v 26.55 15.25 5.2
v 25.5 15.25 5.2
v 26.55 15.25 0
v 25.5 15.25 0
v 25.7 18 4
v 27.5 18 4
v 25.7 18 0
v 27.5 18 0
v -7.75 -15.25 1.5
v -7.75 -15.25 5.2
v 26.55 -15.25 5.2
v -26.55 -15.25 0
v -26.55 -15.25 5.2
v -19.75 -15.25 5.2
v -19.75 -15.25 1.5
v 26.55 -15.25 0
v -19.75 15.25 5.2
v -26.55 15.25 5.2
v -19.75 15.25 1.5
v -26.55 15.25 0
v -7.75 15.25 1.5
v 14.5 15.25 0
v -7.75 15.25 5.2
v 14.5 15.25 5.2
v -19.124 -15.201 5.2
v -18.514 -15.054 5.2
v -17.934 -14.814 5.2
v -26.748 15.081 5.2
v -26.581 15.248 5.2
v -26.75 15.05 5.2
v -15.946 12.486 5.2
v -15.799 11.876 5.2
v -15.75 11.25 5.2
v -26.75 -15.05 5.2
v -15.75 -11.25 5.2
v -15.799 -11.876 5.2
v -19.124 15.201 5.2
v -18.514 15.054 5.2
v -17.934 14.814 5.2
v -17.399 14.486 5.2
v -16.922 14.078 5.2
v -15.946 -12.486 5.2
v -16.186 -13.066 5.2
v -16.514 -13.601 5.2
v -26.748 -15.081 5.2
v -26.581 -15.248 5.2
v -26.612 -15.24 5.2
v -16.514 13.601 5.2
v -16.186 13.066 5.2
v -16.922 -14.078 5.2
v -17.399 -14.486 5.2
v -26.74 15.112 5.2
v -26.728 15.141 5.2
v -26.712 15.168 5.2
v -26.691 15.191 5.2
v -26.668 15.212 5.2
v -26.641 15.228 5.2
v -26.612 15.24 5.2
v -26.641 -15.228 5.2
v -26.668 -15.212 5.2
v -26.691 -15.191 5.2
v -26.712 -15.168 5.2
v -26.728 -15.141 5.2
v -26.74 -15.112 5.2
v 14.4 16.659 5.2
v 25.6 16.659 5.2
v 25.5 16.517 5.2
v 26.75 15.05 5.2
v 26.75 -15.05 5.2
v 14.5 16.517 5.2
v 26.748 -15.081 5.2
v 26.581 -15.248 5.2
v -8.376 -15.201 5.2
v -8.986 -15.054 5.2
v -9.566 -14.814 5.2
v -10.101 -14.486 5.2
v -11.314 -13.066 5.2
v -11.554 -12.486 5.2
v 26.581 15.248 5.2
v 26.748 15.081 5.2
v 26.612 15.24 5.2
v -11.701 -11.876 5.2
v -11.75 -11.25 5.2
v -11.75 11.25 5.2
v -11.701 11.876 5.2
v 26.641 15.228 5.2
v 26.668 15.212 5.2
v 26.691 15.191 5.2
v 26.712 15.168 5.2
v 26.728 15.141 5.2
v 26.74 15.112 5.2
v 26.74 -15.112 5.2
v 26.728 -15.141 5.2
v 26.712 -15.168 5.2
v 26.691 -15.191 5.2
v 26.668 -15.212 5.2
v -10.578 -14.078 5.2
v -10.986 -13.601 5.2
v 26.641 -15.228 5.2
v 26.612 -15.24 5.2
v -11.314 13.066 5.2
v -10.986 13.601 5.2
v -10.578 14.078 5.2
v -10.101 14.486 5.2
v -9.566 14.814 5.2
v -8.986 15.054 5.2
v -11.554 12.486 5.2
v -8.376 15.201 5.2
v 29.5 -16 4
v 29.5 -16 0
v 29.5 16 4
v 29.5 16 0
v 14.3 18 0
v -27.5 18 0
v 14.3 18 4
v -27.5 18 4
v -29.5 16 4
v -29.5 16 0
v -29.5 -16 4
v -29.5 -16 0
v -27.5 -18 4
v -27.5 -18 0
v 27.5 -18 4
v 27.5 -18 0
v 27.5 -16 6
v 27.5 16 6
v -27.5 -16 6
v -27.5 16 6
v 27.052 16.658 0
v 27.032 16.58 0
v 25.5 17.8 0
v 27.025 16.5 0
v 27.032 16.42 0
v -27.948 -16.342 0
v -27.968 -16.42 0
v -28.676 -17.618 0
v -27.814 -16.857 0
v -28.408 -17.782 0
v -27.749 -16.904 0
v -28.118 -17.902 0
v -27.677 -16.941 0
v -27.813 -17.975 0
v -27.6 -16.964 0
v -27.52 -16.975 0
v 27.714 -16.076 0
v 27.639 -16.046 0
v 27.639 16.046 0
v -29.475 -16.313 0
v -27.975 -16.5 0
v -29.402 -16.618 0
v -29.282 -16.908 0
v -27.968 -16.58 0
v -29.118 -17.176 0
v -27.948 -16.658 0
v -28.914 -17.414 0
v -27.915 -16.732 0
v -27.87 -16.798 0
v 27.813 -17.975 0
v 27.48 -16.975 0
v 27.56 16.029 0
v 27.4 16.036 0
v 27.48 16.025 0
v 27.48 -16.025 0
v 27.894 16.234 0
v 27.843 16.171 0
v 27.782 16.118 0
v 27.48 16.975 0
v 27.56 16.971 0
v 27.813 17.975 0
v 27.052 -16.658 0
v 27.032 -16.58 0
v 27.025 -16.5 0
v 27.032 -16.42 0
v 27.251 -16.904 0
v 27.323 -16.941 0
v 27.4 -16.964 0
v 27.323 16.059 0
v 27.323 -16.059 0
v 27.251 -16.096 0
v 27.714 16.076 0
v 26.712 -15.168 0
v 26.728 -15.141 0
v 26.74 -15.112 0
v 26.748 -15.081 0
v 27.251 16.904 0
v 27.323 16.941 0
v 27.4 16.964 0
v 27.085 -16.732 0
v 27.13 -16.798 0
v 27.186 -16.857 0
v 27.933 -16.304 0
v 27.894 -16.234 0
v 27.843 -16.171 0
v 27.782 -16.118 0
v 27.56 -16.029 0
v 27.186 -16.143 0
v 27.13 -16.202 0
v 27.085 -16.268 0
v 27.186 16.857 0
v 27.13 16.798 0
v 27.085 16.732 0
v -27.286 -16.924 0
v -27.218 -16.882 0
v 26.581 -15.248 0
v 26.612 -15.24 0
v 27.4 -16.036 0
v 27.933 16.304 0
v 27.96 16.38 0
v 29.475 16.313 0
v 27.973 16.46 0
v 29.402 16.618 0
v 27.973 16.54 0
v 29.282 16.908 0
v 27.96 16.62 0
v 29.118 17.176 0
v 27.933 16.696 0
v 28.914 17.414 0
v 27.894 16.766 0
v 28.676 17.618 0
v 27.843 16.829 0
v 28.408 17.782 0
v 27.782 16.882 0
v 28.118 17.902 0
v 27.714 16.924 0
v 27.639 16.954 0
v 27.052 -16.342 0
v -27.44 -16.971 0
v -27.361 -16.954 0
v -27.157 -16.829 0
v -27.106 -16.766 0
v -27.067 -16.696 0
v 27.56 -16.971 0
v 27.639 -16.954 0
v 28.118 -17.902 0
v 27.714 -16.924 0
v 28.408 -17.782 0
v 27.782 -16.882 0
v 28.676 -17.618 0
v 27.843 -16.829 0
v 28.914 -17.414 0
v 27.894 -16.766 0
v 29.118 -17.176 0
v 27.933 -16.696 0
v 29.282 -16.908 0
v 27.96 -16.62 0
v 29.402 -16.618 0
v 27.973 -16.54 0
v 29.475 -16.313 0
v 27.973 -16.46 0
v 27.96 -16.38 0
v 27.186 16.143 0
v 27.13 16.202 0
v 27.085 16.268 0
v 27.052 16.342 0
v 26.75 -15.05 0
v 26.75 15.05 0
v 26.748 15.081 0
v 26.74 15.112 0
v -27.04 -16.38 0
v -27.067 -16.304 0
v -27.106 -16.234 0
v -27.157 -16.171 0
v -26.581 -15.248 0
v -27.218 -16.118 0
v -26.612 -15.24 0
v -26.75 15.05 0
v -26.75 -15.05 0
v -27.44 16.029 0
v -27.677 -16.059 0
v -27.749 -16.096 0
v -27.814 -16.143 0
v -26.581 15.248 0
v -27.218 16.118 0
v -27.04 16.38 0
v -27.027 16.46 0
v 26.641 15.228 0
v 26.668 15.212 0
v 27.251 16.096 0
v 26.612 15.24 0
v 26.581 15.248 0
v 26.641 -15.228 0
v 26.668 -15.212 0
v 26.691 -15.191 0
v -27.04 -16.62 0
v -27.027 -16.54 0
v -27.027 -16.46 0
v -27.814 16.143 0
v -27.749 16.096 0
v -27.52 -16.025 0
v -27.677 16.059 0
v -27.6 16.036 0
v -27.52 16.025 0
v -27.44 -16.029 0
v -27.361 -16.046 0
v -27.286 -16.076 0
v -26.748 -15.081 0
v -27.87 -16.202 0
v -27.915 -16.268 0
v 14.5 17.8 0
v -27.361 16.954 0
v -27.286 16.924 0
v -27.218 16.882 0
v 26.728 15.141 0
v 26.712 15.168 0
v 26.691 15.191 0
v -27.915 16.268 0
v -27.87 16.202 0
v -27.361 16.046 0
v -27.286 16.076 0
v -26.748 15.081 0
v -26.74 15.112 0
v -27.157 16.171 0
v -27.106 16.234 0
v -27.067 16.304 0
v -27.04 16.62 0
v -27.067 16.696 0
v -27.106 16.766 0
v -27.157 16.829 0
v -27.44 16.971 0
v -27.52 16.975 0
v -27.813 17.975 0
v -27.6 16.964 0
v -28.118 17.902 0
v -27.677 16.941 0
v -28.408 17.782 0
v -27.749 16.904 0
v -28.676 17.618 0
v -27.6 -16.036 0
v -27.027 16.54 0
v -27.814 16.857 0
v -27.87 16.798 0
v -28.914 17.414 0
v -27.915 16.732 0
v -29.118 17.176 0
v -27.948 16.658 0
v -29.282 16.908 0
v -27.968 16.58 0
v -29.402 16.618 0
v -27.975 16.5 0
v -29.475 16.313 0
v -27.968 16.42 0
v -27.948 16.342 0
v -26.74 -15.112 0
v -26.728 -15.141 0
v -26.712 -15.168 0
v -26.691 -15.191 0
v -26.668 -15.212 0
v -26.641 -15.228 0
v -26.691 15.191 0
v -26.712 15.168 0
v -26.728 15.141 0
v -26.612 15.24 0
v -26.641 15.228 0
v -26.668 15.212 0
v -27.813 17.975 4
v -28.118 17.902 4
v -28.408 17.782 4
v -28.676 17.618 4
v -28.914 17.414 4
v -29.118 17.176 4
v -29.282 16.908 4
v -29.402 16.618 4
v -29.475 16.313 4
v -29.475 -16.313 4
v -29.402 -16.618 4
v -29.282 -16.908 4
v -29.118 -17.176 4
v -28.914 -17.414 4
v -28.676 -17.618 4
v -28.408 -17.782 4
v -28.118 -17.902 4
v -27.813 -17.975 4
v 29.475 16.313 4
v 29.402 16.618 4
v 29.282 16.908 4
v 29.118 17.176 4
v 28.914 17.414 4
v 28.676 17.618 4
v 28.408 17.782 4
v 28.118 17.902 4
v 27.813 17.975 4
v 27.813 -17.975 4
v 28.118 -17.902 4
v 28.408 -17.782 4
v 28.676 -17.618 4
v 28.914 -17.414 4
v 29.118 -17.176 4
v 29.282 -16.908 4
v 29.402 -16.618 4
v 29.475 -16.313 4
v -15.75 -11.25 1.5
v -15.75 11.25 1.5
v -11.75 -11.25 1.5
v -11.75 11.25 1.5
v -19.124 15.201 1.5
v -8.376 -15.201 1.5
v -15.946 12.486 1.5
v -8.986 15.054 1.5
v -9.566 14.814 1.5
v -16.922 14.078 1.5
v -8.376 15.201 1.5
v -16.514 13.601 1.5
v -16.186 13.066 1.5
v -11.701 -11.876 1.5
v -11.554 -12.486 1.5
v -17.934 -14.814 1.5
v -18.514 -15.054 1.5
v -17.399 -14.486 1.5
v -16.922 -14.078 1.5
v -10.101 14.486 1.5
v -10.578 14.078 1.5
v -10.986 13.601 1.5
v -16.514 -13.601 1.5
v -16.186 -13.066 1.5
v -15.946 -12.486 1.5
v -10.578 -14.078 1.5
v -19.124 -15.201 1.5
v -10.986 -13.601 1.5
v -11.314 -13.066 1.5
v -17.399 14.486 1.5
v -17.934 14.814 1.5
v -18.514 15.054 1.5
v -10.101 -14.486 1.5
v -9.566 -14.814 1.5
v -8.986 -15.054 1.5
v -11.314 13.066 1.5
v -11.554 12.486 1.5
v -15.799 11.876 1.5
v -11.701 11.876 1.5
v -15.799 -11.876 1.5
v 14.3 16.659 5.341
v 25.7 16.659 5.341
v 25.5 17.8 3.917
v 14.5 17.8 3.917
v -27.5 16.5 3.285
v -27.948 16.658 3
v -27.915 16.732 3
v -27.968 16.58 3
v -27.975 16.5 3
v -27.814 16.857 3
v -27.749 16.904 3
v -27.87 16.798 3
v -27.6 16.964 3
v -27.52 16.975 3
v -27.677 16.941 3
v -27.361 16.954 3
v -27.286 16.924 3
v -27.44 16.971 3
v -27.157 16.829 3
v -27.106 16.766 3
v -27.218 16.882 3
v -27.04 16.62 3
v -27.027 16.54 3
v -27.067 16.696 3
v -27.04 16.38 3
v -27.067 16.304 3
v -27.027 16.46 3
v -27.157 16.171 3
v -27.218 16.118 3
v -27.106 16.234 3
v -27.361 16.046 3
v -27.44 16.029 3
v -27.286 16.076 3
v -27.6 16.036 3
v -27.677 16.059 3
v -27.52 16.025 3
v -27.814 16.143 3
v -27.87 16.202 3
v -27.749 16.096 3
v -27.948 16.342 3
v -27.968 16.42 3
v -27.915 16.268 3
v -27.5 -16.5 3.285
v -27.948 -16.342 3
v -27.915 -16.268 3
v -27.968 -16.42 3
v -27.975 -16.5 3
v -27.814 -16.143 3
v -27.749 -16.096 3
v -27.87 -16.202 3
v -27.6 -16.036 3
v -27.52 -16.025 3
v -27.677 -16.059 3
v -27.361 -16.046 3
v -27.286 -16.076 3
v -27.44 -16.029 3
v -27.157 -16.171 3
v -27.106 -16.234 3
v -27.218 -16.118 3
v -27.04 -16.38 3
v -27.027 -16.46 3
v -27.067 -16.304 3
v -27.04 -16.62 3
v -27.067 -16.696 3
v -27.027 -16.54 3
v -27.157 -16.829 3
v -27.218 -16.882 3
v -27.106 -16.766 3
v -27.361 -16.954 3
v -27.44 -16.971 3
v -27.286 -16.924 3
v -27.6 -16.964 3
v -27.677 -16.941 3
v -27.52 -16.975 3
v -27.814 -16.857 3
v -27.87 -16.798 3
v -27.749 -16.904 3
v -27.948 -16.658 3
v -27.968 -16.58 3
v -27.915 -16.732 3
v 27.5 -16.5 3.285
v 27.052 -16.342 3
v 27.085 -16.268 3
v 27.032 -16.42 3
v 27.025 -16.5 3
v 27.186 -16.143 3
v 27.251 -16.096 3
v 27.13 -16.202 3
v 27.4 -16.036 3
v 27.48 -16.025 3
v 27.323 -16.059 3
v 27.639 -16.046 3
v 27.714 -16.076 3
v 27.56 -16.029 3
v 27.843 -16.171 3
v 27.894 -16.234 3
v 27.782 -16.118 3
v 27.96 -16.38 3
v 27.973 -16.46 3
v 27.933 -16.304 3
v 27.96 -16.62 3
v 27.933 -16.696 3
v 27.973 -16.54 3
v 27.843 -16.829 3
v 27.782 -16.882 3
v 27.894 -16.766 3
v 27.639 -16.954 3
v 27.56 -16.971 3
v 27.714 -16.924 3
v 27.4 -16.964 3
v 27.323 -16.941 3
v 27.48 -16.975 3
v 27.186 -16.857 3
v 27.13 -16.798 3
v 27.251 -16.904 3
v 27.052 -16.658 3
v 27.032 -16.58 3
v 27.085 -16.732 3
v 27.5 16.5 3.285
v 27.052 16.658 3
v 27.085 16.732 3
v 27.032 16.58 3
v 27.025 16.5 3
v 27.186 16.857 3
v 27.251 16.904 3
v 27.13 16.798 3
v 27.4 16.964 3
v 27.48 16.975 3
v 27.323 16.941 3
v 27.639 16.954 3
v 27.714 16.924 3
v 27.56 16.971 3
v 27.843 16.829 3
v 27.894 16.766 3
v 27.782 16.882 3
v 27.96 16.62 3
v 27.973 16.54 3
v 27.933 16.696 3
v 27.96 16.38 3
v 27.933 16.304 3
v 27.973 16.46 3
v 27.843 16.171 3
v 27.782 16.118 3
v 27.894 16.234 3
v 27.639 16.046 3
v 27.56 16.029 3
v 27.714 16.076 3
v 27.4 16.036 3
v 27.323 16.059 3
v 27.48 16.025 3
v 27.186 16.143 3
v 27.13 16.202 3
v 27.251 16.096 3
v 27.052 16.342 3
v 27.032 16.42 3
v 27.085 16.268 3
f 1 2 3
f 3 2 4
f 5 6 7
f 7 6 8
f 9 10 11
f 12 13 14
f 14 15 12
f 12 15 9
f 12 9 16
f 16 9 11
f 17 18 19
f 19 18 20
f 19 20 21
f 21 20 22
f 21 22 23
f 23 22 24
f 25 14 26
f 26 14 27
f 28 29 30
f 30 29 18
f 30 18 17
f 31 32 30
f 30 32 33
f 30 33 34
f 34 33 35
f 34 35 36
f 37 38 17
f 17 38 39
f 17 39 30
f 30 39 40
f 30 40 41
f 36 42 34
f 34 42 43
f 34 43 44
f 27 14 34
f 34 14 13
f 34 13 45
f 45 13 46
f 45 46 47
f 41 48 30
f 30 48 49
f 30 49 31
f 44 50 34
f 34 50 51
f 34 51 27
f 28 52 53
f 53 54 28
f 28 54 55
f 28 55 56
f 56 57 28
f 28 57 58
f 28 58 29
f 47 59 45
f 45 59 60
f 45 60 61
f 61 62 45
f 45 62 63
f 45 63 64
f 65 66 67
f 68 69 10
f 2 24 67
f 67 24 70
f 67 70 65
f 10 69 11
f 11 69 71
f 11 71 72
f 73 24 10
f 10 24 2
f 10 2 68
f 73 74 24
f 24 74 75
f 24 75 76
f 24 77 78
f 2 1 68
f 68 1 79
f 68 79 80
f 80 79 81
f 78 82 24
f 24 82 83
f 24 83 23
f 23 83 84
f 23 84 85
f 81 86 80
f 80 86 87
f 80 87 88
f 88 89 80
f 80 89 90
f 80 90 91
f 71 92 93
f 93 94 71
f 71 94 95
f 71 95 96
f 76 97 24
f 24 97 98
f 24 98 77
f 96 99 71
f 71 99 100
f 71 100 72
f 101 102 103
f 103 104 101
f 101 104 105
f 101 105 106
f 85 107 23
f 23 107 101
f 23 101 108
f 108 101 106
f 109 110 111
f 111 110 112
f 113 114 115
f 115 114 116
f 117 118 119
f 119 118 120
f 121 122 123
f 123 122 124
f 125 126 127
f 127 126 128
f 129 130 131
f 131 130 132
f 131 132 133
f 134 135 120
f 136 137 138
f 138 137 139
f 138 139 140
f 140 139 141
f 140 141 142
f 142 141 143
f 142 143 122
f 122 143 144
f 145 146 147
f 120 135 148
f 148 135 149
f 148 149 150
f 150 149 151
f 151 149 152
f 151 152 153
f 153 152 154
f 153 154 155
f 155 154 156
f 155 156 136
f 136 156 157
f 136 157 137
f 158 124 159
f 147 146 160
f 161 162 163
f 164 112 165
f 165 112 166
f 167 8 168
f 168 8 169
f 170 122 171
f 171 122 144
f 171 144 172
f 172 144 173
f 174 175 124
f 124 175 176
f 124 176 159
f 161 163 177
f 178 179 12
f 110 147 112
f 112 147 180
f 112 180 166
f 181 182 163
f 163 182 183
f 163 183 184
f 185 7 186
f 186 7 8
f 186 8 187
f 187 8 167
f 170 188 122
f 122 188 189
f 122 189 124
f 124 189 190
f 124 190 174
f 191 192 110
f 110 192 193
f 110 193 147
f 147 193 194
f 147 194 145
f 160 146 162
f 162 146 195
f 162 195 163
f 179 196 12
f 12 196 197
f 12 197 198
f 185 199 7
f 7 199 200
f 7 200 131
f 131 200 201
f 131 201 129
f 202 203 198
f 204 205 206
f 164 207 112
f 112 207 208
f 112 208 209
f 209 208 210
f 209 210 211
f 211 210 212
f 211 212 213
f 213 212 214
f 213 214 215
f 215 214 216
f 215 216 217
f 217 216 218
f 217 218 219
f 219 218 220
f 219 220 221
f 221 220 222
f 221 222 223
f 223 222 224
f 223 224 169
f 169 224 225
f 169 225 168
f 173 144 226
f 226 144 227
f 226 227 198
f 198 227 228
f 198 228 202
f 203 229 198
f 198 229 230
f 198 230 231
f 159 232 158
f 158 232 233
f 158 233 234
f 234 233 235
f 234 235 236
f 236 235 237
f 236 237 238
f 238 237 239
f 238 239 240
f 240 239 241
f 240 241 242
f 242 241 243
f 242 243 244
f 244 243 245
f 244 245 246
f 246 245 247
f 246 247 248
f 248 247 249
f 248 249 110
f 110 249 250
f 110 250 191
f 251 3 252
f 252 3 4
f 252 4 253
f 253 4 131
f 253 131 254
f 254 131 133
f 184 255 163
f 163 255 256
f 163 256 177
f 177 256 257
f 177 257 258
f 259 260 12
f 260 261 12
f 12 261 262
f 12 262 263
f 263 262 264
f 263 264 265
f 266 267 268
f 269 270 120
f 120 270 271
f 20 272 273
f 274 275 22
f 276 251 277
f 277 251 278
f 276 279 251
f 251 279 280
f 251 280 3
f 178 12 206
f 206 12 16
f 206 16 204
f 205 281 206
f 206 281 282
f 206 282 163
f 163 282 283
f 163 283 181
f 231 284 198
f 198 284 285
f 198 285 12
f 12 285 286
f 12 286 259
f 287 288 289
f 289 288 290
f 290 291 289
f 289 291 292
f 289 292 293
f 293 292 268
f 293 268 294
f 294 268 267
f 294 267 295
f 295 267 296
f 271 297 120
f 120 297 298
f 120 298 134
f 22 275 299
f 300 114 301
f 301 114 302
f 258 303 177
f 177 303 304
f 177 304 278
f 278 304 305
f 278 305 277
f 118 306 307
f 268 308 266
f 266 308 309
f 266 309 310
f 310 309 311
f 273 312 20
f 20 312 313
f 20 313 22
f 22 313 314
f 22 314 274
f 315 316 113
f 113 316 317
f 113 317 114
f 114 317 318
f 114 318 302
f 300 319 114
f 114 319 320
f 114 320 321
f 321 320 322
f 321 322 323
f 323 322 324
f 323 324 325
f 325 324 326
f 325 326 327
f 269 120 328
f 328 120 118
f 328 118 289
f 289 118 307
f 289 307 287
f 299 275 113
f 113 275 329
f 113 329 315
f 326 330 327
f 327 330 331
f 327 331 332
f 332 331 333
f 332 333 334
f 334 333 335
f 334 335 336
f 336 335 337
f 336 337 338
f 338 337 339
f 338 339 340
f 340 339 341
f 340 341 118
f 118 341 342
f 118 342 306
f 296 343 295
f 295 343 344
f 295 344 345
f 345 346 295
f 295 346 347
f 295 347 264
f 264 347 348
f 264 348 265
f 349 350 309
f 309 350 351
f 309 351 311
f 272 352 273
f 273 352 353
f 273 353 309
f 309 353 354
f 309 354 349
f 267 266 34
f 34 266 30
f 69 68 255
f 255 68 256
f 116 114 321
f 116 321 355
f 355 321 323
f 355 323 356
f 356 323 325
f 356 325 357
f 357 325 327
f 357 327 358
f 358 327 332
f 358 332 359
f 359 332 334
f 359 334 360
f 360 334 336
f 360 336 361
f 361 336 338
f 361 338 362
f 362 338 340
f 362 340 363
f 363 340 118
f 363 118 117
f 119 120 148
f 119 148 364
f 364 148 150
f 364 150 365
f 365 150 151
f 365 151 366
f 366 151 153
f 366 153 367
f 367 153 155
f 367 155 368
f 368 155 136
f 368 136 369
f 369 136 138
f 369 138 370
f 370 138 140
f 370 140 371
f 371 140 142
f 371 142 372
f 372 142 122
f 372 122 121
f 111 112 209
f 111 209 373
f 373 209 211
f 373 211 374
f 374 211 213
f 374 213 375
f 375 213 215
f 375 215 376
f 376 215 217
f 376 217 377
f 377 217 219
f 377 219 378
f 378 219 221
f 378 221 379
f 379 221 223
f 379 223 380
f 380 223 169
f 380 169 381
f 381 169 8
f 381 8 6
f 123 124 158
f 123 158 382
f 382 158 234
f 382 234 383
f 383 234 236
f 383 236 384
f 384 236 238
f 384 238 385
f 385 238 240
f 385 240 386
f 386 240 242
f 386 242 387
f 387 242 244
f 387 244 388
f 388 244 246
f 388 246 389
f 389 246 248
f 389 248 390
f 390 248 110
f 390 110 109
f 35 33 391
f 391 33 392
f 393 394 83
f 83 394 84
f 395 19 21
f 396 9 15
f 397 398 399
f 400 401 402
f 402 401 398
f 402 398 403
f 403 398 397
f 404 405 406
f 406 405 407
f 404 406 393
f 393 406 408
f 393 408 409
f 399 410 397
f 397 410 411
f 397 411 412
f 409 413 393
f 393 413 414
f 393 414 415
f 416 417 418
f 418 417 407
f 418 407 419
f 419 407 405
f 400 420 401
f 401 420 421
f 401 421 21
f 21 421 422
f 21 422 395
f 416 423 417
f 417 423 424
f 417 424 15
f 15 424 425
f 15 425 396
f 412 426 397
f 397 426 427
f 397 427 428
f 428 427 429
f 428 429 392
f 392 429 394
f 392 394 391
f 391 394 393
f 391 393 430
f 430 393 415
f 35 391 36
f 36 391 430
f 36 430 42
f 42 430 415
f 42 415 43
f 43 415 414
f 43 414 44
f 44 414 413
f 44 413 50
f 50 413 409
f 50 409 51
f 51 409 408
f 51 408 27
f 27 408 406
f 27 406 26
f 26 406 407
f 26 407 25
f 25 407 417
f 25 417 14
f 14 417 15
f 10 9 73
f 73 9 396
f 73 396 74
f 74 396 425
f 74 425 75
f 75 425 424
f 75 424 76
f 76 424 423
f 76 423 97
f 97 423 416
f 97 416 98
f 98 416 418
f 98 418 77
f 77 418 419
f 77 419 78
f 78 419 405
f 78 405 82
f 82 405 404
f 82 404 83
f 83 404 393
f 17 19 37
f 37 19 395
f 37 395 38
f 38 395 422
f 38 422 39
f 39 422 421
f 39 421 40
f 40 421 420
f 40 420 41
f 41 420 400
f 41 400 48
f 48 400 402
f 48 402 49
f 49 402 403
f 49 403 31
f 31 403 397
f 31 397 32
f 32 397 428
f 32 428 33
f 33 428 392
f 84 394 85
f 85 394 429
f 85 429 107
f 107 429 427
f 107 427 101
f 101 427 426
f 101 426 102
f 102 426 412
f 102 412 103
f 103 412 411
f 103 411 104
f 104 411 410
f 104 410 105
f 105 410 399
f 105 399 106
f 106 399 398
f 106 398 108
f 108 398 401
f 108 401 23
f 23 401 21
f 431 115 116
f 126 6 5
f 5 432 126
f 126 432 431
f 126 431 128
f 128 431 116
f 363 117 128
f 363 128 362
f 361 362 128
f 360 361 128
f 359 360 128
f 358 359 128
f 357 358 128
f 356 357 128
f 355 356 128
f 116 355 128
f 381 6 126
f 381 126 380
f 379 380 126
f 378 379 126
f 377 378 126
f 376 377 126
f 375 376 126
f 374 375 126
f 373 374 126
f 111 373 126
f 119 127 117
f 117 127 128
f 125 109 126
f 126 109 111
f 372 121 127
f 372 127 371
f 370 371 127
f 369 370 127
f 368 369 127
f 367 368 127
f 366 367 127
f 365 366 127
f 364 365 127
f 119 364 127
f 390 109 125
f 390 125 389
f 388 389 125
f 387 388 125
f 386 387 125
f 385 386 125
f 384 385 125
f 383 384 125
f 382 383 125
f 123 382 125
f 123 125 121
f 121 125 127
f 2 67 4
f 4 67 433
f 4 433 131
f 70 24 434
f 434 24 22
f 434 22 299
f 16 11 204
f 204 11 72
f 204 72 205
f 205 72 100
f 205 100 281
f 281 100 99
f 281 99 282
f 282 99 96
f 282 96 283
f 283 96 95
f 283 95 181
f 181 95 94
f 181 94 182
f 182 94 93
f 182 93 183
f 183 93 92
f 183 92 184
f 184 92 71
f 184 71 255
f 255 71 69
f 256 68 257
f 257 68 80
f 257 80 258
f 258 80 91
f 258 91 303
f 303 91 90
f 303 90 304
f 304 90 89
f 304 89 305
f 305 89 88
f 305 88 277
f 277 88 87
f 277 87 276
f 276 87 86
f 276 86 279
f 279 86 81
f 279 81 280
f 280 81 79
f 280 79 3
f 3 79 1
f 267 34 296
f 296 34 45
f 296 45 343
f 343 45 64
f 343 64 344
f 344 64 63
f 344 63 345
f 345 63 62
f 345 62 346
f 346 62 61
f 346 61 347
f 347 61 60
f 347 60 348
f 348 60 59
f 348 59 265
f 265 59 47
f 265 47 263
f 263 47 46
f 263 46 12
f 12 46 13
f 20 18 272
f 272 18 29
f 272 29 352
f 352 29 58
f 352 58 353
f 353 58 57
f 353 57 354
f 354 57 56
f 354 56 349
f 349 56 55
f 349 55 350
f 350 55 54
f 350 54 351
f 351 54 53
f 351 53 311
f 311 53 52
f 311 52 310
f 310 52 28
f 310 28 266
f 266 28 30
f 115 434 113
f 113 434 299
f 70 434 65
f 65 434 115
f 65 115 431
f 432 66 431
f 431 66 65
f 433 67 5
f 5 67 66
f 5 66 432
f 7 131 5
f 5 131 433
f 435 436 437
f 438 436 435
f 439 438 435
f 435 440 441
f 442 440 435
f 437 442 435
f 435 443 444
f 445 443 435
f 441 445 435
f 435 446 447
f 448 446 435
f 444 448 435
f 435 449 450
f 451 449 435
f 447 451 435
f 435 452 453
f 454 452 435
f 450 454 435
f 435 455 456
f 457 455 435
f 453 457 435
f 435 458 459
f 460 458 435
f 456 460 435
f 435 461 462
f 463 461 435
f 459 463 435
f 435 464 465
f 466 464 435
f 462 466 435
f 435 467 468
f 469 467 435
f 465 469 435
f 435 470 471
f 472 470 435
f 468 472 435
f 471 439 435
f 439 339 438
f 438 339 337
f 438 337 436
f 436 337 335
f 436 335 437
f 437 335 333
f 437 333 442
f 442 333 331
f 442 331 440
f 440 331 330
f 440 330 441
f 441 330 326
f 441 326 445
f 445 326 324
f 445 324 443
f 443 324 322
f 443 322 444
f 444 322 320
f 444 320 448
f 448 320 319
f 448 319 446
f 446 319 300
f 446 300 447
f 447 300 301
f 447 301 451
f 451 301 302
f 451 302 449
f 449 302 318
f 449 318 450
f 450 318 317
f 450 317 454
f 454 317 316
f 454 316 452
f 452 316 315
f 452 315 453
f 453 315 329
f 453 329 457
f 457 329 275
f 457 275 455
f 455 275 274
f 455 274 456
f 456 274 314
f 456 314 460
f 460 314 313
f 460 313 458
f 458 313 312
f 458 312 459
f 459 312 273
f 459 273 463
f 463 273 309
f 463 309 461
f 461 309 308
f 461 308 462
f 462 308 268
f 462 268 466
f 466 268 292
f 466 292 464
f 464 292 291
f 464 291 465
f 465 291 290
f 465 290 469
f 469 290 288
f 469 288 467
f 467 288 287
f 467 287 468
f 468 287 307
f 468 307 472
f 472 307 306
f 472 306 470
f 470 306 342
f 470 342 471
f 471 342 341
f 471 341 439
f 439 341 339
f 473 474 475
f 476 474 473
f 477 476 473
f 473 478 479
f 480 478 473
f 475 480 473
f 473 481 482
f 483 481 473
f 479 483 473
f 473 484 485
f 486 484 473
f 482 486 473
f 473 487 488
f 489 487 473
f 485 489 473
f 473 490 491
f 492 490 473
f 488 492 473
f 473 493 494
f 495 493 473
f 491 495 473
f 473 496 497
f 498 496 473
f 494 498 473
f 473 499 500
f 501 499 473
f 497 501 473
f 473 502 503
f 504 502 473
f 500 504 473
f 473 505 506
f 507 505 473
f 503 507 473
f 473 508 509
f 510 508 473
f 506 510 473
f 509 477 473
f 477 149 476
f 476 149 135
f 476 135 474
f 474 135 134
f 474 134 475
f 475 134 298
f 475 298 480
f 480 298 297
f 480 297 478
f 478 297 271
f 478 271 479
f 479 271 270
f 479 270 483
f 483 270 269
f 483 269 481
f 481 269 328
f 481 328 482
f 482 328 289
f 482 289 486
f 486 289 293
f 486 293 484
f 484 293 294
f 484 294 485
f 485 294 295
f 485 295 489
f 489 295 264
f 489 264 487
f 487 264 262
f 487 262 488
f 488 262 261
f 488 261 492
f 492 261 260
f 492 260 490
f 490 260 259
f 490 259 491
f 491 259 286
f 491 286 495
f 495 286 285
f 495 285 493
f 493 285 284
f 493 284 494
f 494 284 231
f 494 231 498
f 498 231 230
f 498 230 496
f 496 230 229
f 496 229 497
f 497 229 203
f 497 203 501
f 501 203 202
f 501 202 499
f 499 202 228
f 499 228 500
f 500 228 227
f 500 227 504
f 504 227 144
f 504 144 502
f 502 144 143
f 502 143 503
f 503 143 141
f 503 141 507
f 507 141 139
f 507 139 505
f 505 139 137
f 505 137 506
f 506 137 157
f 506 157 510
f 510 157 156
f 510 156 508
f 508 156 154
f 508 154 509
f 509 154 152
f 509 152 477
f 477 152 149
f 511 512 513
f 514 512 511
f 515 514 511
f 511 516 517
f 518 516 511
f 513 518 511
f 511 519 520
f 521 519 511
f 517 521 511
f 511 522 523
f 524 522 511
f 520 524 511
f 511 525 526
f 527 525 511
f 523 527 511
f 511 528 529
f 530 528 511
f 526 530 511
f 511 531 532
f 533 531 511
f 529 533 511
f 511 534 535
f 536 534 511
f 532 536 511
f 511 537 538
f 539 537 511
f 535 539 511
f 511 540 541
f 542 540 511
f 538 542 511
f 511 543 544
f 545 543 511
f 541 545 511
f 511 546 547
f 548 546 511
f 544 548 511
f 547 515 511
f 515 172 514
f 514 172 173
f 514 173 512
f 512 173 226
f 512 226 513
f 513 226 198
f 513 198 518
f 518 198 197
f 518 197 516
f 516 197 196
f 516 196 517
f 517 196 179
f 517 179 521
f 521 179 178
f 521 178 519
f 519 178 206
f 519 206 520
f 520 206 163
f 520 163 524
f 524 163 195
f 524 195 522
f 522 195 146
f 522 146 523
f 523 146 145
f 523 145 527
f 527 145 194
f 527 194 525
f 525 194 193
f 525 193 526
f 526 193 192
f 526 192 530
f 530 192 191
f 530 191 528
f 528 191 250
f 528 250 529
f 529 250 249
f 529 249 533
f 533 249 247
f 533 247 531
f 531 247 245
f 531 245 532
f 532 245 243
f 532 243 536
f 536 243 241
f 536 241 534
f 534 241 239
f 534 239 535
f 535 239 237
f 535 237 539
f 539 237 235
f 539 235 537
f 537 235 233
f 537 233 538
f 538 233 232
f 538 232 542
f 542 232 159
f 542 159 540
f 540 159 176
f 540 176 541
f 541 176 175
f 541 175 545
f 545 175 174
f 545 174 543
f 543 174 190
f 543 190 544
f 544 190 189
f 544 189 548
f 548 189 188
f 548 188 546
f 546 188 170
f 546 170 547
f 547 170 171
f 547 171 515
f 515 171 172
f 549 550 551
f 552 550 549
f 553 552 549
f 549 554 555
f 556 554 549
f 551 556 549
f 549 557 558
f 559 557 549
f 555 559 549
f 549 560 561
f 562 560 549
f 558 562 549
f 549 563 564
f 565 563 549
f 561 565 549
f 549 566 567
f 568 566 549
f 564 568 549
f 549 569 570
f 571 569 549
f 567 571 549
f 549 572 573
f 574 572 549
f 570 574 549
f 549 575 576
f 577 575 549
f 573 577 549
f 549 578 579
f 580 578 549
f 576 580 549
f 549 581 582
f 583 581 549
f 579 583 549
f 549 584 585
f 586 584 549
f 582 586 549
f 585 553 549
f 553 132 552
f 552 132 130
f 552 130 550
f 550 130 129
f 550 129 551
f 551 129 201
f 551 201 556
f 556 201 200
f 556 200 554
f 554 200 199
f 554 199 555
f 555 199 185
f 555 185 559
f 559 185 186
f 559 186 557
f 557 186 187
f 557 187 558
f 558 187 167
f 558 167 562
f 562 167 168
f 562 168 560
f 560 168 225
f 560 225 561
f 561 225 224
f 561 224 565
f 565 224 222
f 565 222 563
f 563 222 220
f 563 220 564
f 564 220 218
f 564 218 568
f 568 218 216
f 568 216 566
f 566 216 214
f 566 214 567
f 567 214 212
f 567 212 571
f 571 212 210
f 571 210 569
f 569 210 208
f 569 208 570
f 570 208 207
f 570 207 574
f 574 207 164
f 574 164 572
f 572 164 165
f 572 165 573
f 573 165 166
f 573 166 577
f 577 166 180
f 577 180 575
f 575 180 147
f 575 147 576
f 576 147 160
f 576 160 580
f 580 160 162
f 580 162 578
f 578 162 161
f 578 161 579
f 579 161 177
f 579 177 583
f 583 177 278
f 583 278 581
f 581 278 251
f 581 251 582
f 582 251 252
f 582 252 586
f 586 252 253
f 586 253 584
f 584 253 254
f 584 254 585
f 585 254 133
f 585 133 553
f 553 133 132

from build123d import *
from OCP.BRepFilletAPI import BRepFilletAPI_MakeChamfer

# Parameters (mm, degrees)
SKETCH_1_W          = 59
SKETCH_1_H          = 36
EXTRUDE_1_DEPTH     = 6
SKETCH_2_W          = 53.5
SKETCH_2_H          = 30.5
CUT_EXTRUDE_1_DEPTH = 5.2
FILLET_1_R          = 2
SKETCH_3_W          = 4
SKETCH_3_H          = 30.5
EXTRUDE_2_DEPTH     = 3.7
FILLET_2_R          = 4
CHAMFER_1_SIZE      = 2
SKETCH_4_W          = 11
SKETCH_4_H          = 5.2
CUT_EXTRUDE_2_DEPTH = 10
FILLET_3_R          = 0.2
CHAMFER_2_SIZE      = 0.2
CHAMFER_2_SIZE_2    = 0.141421356
M1_2X0_25_1_D       = 0.95
M1_2X0_25_1_DEPTH   = 3
M1_2X0_25_1_TIP     = 0.285408794


with BuildPart() as part:
    # 草图1 → 凸台-拉伸1 (new body)
    with BuildSketch(Plane.XY):
        Rectangle(SKETCH_1_W, SKETCH_1_H)
    extrude(amount=EXTRUDE_1_DEPTH)

    # 草图2 → 切除-拉伸1 (cut)
    with BuildSketch(Plane(origin=(0, 0, 0), x_dir=(-1, 0, 0), z_dir=(0, 0, -1))):
        Rectangle(SKETCH_2_W, SKETCH_2_H)
    extrude(amount=-CUT_EXTRUDE_1_DEPTH, mode=Mode.SUBTRACT)

    # 圆角1
    fillet_1_edges = [part.edges().sort_by_distance(p)[0] for p in [
        (29.5, -18, 3),
        (-29.5, -18, 3),
        (-29.5, 18, 3),
        (29.5, 18, 3),
    ]]
    fillet(fillet_1_edges, radius=FILLET_1_R)

    # 草图3 → 凸台-拉伸2 (add)
    with BuildSketch(Plane(origin=(0, 0, 5.2), x_dir=(-1, 0, 0), z_dir=(0, 0, -1))):
        with Locations((13.75, 0)):
            Rectangle(SKETCH_3_W, SKETCH_3_H)
    extrude(amount=EXTRUDE_2_DEPTH)

    # 圆角2
    fillet_2_edges = [part.edges().sort_by_distance(p)[0] for p in [
        (-15.75, -15.25, 3.35),
        (-15.75, 15.25, 3.35),
        (-11.75, 15.25, 3.35),
        (-11.75, -15.25, 3.35),
    ]]
    fillet(fillet_2_edges, radius=FILLET_2_R)

    # 倒角1
    chamfer_1_edges = [part.edges().sort_by_distance(p)[0] for p in [
        (-29.5, 0, 6),
        (0, 18, 6),
        (29.5, 0, 6),
        (0, -18, 6),
        (28.914213562, -17.414213562, 6),
        (28.914213562, 17.414213562, 6),
        (-28.914213562, -17.414213562, 6),
        (-28.914213562, 17.414213562, 6),
    ]]
    chamfer(chamfer_1_edges, length=CHAMFER_1_SIZE)

    # 草图4 → 切除-拉伸2 (cut)
    with BuildSketch(Plane(origin=(0, 18, 0), x_dir=(1, 0, 0), z_dir=(0, 1, 0))):
        with Locations((20, -2.6)):
            Rectangle(SKETCH_4_W, SKETCH_4_H)
    extrude(amount=-CUT_EXTRUDE_2_DEPTH, mode=Mode.SUBTRACT)

    # 圆角3
    fillet_3_edges = [part.edges().sort_by_distance(p)[0] for p in [
        (-26.75, 15.25, 2.6),
        (-26.75, -15.25, 2.6),
        (26.75, -15.25, 2.6),
        (26.75, 15.25, 2.6),
    ]]
    fillet(fillet_3_edges, radius=FILLET_3_R)

    # 倒角2
    chamfer_2_edges_1 = [part.edges().sort_by_distance(p)[0] for p in [
        (14.5, 17.4, 4.6),
        (25.5, 17.4, 4.6),
        (25.5, 18, 2),
        (14.5, 18, 2),
    ]]
    chamfer_2_edges_2 = [part.edges().sort_by_distance(p)[0] for p in [
        (20, 16.8, 5.2),
    ]]
    chamfer_2_side_2 = [part.faces().sort_by_distance(p)[0] for p in [
        (20, 16.797171573, 5.2),
    ]]
    chamfer_2 = BRepFilletAPI_MakeChamfer(part.part.solid().wrapped)
    for e in chamfer_2_edges_1:
        chamfer_2.Add(CHAMFER_2_SIZE - 0.0001, e.wrapped)
    for e in chamfer_2_edges_2:
        chamfer_2.Add(CHAMFER_2_SIZE_2 - 0.0001, CHAMFER_2_SIZE - 0.0001, e.wrapped, chamfer_2_side_2[0].wrapped)
    add(Compound.cast(chamfer_2.Shape()), mode=Mode.REPLACE)  # a hair under: the kernel refuses the full size

    # M1.2x0.25 螺纹孔1
    with Locations(Plane(origin=(27.5, 16.5, 0), x_dir=(-1, 0, 0), z_dir=(0, 0, -1))):
        with Locations((0, 0), (0, -33), (55, -33), (55, 0)):
            Hole(M1_2X0_25_1_D / 2, depth=M1_2X0_25_1_DEPTH)
            with Locations((0, 0, -(M1_2X0_25_1_DEPTH + M1_2X0_25_1_TIP / 2))):  # 118° drill point
                Cone(0, M1_2X0_25_1_D / 2, M1_2X0_25_1_TIP, mode=Mode.SUBTRACT)


solid = part.part
